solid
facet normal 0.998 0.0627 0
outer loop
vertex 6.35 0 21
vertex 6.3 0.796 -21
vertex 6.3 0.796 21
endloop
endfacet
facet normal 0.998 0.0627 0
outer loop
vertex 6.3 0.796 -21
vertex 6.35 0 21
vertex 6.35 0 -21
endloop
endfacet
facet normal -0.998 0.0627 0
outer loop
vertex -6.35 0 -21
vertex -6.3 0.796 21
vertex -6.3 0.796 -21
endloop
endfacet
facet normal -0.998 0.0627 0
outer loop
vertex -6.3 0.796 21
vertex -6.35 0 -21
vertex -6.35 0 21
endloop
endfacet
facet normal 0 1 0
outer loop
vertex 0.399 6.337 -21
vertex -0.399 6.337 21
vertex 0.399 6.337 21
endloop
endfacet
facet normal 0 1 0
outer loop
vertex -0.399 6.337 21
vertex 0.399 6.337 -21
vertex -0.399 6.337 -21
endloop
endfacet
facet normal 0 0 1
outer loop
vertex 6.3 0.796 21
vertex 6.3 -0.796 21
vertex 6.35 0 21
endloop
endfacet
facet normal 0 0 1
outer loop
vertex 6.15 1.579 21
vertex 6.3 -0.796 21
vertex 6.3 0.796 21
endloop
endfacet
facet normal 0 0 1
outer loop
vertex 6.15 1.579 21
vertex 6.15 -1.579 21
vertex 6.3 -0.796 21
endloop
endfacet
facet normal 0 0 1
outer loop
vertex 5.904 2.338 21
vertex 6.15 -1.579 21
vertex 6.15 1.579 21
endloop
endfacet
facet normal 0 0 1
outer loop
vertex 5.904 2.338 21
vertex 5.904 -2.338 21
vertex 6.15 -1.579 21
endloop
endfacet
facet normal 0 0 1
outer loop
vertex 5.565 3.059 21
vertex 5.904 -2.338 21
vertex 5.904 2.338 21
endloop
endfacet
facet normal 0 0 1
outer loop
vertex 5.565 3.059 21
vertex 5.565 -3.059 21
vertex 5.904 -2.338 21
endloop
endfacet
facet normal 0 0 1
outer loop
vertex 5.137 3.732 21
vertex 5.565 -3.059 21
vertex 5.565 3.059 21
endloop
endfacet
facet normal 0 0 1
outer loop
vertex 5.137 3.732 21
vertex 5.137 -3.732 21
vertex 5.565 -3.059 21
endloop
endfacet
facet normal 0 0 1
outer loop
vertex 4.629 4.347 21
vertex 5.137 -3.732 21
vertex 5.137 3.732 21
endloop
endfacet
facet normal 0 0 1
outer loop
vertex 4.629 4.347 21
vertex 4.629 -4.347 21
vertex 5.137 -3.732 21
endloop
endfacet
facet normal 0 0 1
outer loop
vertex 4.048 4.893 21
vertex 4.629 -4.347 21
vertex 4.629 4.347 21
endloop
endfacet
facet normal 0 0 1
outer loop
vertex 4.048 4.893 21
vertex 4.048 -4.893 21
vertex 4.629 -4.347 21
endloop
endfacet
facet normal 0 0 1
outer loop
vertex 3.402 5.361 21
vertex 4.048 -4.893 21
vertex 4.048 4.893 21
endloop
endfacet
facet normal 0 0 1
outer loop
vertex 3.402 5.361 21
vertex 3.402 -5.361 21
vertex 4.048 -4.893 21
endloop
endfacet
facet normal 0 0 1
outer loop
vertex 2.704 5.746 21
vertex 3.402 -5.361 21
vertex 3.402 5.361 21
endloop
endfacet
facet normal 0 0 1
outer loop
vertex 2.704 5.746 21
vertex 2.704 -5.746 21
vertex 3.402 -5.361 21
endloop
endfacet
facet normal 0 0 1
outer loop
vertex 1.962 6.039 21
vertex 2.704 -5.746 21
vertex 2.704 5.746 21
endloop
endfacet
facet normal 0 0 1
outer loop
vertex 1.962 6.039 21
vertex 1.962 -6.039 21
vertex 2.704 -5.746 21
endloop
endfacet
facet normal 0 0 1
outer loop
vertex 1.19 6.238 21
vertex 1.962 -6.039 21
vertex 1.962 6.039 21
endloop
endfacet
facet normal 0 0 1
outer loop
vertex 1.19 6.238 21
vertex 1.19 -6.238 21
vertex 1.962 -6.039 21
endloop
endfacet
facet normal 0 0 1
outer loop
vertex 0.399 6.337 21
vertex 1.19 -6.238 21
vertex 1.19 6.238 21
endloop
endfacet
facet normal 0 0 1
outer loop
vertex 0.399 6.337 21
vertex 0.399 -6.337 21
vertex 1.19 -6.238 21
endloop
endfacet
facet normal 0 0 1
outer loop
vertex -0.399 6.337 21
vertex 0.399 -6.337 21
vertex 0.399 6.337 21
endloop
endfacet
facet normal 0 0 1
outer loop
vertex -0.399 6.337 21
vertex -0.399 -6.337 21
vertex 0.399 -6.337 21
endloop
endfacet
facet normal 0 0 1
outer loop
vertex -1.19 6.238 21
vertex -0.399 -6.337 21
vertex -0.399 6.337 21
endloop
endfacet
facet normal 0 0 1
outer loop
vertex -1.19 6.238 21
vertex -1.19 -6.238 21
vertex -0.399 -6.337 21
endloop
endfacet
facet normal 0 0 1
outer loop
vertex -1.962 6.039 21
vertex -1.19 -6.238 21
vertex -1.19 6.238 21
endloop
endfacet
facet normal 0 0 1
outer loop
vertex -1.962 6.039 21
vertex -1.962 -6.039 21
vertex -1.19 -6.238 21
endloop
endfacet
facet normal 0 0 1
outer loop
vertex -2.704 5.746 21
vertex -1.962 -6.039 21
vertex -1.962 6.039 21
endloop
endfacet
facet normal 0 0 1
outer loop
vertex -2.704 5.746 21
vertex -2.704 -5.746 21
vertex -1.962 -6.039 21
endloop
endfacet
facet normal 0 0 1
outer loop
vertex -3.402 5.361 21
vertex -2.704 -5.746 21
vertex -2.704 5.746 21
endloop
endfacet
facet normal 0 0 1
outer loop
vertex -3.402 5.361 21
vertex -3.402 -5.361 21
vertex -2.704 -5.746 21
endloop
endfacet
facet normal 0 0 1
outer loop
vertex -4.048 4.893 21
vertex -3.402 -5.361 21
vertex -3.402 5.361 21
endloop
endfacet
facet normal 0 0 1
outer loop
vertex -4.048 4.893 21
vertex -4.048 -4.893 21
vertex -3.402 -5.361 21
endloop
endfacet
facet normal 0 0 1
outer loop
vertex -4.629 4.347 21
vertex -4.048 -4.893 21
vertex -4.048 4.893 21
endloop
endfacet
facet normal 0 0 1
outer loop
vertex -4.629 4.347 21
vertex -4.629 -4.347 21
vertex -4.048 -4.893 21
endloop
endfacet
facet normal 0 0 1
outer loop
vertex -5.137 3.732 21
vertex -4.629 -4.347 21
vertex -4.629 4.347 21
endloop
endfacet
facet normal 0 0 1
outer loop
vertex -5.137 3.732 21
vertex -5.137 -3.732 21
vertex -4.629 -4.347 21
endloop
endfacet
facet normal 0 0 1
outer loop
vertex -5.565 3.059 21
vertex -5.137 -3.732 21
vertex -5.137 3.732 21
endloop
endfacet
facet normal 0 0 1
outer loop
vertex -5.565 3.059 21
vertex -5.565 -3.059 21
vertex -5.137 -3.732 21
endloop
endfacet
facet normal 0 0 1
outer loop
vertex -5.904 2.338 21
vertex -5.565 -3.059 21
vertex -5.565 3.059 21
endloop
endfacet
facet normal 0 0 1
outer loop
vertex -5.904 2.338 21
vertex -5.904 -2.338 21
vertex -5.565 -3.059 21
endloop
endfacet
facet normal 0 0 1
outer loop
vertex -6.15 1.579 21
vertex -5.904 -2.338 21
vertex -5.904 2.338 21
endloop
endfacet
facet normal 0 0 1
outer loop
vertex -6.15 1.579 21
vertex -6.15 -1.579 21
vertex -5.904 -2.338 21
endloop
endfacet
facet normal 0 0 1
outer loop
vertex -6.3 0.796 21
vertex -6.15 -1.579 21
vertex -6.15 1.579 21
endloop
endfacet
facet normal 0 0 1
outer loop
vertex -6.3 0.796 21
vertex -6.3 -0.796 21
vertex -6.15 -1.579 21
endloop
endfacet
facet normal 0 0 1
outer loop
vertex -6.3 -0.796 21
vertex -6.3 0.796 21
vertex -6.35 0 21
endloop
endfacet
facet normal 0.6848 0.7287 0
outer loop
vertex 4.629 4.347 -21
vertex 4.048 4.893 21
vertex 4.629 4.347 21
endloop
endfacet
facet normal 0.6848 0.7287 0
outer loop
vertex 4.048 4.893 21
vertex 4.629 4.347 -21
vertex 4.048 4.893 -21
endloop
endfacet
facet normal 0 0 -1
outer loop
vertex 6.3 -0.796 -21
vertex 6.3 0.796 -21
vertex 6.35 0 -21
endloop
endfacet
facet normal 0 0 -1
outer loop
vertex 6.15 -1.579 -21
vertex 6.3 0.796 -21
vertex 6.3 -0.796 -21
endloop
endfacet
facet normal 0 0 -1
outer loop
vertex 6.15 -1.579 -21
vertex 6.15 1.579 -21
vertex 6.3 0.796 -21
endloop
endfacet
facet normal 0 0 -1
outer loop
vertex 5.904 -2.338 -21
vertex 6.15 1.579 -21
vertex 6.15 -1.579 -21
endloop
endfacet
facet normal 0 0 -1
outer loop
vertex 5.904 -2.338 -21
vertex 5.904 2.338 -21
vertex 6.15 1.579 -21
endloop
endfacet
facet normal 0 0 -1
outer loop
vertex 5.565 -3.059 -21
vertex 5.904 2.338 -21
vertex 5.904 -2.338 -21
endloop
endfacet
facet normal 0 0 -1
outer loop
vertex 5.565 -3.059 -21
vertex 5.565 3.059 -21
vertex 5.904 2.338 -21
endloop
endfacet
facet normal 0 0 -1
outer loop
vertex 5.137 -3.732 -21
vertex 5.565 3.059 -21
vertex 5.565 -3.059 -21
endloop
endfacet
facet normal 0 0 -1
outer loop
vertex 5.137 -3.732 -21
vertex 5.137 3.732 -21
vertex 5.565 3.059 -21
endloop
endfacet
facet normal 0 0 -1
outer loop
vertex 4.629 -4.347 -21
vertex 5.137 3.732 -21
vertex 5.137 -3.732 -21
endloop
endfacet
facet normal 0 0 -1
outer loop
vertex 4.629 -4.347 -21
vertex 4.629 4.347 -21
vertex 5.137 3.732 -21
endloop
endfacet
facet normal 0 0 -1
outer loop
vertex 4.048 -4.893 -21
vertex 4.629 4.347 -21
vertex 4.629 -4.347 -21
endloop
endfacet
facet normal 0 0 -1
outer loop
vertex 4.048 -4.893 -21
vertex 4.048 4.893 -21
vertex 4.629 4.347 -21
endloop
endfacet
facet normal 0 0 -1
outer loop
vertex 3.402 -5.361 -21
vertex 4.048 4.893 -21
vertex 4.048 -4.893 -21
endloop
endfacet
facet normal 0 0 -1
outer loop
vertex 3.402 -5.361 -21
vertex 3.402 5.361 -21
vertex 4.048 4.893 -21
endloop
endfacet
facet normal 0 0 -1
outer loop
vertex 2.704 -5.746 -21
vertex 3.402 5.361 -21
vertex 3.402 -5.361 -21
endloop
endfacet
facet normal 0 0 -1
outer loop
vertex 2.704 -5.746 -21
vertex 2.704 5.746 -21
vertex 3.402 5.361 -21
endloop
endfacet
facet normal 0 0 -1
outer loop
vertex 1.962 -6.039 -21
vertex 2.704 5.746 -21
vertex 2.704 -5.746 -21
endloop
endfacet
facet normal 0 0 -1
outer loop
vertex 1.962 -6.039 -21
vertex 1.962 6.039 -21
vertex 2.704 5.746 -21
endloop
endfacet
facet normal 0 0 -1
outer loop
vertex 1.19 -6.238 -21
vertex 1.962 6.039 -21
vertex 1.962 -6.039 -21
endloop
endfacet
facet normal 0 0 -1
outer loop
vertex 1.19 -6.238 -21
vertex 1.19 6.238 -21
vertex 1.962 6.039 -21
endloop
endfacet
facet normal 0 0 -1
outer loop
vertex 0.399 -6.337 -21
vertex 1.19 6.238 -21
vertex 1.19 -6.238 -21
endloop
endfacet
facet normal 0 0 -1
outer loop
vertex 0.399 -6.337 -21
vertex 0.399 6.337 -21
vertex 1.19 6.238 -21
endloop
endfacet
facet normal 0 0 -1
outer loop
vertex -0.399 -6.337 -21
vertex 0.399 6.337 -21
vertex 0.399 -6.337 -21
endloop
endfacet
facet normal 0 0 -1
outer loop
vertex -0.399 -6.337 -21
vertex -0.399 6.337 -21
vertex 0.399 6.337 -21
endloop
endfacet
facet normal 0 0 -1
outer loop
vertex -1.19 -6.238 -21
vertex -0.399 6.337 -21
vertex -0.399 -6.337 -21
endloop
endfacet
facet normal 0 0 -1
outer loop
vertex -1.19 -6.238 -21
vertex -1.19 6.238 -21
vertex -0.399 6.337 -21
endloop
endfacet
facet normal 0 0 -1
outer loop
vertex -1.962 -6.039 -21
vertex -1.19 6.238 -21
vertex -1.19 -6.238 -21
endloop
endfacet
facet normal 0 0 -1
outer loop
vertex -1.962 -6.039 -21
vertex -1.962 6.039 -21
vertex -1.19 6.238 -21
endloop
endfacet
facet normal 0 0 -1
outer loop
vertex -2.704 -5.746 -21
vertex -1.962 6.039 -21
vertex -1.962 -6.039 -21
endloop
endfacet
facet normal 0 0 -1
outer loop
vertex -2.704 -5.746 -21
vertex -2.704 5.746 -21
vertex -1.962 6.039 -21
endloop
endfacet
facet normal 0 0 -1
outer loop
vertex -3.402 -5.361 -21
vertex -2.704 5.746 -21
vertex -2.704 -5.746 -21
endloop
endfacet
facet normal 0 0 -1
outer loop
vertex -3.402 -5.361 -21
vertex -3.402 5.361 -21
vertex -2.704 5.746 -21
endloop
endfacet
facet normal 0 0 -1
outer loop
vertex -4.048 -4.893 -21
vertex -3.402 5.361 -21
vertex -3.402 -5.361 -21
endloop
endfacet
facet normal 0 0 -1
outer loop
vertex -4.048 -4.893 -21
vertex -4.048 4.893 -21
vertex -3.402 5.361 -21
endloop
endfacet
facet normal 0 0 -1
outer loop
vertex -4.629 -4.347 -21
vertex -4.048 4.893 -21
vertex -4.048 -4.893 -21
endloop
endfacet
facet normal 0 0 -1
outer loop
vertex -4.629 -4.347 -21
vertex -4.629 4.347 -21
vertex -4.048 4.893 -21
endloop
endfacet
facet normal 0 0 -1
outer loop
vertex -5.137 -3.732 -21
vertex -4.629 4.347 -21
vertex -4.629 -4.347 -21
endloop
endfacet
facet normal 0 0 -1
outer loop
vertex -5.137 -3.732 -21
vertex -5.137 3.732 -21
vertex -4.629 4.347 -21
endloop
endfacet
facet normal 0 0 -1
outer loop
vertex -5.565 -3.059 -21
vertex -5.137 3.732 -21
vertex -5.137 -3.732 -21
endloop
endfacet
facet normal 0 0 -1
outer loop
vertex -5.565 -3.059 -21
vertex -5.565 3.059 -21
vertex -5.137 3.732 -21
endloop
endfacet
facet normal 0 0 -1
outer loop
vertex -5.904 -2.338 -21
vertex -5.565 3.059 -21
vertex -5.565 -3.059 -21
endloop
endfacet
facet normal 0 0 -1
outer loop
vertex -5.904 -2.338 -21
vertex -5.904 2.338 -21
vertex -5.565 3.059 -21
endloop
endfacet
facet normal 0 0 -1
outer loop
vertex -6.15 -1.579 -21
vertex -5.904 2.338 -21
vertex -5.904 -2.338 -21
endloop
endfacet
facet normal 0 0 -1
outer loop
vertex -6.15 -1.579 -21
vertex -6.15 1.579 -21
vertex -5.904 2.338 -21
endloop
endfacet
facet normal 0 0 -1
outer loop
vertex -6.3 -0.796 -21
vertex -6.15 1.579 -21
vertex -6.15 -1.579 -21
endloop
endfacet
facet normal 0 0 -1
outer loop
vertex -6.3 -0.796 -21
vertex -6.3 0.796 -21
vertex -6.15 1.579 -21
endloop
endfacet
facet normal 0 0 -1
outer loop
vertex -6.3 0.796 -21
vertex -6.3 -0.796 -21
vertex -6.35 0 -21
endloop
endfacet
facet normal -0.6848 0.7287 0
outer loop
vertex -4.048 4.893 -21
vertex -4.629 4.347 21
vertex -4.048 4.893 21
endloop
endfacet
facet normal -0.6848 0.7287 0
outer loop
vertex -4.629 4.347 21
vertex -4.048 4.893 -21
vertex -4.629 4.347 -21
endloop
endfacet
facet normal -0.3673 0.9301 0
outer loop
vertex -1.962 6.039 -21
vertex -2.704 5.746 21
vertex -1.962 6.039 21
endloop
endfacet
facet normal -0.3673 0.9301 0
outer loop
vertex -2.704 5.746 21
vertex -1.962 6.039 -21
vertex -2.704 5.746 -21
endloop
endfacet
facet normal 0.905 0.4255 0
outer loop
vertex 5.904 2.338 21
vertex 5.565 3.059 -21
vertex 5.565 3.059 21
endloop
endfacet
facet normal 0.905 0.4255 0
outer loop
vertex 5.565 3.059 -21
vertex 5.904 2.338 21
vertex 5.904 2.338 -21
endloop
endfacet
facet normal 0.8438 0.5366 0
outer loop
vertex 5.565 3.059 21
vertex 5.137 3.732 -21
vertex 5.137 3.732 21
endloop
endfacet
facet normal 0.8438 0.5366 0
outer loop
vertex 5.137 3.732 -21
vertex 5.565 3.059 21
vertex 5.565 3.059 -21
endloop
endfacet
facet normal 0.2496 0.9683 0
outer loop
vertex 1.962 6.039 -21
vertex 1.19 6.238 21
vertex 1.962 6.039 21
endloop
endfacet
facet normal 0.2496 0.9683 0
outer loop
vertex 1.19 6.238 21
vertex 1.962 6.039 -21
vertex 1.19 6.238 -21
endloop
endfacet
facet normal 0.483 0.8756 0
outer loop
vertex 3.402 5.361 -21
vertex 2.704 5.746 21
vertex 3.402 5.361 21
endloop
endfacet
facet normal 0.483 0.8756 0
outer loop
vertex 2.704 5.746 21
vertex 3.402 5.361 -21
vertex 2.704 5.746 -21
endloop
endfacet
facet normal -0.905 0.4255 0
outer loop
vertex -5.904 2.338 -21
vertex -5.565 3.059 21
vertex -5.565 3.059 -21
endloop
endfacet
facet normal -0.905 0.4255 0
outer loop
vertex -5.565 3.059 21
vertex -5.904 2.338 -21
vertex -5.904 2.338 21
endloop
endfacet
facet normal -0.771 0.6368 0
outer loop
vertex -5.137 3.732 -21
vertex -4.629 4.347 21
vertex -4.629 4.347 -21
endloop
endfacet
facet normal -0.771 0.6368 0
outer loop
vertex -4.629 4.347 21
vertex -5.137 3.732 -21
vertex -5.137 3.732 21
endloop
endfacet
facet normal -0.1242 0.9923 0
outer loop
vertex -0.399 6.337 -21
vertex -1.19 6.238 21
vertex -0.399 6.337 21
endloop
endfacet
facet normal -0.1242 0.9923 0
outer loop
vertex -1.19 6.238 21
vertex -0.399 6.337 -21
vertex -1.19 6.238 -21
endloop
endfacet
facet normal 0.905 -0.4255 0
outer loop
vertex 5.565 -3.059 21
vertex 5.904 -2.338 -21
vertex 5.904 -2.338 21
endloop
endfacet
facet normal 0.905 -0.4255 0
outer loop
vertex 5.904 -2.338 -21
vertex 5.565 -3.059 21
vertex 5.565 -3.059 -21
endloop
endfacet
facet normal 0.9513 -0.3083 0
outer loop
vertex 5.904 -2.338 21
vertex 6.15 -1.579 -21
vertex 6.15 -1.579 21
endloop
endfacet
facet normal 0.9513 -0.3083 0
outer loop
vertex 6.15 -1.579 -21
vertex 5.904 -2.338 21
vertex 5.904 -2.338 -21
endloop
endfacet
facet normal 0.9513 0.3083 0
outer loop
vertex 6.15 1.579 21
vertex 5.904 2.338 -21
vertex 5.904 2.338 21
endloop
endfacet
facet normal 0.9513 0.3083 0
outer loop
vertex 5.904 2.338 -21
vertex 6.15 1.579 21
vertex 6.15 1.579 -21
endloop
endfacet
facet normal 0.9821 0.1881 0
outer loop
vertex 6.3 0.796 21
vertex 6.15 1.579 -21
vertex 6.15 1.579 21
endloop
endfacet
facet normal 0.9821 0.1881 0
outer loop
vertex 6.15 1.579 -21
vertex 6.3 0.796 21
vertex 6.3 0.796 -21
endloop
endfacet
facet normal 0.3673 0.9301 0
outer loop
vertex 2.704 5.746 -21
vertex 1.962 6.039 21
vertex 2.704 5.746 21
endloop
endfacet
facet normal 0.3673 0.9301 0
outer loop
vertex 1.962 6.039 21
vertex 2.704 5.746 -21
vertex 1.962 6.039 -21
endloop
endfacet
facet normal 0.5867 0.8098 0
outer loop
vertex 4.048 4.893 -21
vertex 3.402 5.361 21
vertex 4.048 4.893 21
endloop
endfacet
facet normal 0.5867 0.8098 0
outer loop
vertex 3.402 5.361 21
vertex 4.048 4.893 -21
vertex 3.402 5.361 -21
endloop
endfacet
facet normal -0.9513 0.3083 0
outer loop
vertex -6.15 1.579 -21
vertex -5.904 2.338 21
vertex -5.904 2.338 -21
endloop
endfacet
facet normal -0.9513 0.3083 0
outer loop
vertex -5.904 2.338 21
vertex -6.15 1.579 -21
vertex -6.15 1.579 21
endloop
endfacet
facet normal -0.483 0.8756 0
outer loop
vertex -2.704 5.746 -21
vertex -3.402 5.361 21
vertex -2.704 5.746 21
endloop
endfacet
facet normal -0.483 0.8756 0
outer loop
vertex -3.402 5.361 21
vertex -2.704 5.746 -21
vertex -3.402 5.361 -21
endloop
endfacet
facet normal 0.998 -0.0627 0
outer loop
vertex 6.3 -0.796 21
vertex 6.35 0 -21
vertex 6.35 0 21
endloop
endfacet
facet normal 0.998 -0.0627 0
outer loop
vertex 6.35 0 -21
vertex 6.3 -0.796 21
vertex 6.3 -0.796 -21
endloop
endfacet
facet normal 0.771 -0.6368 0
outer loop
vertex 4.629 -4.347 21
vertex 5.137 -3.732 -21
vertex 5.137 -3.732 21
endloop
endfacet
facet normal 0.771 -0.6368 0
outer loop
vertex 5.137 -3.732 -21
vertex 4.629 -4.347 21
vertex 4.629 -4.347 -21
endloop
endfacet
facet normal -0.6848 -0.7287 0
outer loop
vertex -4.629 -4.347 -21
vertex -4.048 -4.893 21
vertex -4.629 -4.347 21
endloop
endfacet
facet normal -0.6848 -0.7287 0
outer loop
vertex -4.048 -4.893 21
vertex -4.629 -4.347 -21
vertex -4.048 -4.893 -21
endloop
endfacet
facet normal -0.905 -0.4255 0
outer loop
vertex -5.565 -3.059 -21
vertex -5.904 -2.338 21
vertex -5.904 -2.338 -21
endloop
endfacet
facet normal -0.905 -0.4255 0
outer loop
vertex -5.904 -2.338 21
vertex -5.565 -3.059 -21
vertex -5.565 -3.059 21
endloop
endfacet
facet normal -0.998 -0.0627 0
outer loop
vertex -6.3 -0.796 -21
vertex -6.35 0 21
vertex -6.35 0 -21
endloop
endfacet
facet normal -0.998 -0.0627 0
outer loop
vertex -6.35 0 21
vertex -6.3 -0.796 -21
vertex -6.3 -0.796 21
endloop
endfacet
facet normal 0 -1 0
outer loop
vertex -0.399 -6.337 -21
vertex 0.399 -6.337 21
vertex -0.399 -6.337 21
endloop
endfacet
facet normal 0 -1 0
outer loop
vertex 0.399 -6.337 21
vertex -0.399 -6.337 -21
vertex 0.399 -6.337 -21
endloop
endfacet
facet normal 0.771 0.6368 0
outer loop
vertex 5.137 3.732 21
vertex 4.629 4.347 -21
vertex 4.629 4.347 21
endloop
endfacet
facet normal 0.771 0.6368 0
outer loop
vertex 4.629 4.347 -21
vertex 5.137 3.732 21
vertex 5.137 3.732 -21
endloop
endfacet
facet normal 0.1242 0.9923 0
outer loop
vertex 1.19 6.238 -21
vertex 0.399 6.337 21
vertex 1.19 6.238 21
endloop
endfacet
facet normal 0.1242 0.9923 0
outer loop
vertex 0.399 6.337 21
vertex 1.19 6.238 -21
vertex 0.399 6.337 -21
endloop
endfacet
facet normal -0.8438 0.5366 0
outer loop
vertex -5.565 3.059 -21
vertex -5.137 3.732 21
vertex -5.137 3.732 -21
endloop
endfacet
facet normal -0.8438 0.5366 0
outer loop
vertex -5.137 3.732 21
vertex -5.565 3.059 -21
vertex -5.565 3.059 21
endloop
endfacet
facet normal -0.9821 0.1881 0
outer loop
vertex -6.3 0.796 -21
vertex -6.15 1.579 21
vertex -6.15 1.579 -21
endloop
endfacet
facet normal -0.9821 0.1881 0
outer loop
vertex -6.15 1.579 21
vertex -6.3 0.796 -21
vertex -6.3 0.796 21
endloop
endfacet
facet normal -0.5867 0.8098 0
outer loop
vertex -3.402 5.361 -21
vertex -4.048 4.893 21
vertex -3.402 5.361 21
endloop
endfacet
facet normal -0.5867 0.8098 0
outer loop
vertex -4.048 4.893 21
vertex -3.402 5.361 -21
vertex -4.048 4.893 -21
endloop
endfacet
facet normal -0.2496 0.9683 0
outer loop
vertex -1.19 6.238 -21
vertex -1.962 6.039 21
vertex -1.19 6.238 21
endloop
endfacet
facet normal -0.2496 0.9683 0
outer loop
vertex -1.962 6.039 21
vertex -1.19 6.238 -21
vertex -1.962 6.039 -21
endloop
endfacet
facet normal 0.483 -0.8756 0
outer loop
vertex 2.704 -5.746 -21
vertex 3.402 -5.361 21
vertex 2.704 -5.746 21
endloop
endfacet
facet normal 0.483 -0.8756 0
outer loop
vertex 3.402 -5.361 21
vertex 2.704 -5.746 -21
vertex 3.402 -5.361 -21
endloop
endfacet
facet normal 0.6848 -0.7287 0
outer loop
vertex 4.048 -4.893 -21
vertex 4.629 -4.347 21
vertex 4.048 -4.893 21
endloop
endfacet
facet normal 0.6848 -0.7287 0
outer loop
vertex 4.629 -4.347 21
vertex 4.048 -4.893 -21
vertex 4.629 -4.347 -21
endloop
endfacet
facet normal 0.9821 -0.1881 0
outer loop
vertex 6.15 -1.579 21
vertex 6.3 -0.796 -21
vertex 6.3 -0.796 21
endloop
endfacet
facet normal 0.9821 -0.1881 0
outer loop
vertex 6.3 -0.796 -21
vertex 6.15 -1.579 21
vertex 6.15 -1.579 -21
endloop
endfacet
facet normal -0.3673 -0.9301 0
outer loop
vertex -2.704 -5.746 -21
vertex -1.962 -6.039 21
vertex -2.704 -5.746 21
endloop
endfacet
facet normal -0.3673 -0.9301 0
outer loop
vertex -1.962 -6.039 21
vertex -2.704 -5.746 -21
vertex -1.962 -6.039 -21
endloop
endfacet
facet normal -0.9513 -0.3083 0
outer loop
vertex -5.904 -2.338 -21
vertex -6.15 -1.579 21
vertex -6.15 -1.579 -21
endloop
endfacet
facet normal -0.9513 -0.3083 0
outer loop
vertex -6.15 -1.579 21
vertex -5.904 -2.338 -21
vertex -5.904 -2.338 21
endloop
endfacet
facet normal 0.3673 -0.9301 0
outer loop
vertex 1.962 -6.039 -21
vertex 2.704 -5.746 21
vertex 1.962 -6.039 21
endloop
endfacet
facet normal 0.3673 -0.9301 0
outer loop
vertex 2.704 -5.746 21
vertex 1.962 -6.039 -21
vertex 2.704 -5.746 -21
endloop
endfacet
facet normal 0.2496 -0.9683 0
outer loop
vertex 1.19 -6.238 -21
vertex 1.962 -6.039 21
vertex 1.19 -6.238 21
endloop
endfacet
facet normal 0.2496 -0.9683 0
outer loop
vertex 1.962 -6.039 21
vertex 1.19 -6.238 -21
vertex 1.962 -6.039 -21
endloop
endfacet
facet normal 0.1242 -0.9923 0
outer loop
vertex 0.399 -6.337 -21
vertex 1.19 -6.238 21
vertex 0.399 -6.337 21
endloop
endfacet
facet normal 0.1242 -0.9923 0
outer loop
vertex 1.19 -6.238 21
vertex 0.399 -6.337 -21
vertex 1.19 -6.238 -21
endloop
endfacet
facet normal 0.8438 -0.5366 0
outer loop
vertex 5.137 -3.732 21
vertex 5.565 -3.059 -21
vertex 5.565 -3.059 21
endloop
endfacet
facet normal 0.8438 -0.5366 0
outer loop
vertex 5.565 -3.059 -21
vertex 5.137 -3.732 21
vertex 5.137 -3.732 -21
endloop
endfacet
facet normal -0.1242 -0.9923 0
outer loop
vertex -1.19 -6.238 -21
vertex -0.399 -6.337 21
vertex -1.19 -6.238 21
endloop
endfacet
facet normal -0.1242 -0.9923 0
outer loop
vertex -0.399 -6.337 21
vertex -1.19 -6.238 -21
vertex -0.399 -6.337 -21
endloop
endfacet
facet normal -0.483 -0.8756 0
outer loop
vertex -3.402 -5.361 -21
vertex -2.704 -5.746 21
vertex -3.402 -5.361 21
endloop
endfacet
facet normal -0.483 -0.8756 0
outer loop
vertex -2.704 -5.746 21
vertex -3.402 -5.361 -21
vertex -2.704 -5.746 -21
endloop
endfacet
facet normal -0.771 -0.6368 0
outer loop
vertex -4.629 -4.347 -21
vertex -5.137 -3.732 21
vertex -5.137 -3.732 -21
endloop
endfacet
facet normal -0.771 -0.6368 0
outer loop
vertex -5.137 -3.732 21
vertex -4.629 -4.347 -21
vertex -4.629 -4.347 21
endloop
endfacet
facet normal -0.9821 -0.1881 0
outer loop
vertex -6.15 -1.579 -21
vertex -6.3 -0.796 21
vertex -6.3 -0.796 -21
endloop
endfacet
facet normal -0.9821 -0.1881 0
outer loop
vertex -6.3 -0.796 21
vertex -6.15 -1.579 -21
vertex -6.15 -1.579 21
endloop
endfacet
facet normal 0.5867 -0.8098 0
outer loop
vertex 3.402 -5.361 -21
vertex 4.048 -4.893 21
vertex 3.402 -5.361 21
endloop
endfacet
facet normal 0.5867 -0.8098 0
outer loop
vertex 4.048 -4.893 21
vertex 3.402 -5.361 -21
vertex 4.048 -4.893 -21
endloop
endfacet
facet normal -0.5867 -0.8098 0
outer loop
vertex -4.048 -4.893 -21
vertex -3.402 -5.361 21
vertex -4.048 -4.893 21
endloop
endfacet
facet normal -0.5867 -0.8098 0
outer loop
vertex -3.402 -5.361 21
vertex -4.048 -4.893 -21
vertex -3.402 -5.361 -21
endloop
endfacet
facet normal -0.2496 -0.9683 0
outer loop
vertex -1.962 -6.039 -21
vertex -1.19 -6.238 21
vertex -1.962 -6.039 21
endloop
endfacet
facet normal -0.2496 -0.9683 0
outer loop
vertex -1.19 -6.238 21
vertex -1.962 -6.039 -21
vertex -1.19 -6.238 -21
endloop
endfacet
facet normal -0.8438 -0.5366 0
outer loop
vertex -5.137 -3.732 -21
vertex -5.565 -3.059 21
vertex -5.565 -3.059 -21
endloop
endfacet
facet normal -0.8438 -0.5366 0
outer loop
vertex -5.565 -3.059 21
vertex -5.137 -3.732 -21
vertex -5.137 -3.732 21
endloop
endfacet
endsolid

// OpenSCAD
$fn = 50;


difference() {
	union() {
		translate(v = [0, 0, -21.0000000000]) {
			cylinder(h = 42, r = 6.3500000000);
		}
	}
	union() {
		translate(v = [0, 0, -100.0000000000]) {
			cylinder(h = 200, r = 0);
		}
	}
}
